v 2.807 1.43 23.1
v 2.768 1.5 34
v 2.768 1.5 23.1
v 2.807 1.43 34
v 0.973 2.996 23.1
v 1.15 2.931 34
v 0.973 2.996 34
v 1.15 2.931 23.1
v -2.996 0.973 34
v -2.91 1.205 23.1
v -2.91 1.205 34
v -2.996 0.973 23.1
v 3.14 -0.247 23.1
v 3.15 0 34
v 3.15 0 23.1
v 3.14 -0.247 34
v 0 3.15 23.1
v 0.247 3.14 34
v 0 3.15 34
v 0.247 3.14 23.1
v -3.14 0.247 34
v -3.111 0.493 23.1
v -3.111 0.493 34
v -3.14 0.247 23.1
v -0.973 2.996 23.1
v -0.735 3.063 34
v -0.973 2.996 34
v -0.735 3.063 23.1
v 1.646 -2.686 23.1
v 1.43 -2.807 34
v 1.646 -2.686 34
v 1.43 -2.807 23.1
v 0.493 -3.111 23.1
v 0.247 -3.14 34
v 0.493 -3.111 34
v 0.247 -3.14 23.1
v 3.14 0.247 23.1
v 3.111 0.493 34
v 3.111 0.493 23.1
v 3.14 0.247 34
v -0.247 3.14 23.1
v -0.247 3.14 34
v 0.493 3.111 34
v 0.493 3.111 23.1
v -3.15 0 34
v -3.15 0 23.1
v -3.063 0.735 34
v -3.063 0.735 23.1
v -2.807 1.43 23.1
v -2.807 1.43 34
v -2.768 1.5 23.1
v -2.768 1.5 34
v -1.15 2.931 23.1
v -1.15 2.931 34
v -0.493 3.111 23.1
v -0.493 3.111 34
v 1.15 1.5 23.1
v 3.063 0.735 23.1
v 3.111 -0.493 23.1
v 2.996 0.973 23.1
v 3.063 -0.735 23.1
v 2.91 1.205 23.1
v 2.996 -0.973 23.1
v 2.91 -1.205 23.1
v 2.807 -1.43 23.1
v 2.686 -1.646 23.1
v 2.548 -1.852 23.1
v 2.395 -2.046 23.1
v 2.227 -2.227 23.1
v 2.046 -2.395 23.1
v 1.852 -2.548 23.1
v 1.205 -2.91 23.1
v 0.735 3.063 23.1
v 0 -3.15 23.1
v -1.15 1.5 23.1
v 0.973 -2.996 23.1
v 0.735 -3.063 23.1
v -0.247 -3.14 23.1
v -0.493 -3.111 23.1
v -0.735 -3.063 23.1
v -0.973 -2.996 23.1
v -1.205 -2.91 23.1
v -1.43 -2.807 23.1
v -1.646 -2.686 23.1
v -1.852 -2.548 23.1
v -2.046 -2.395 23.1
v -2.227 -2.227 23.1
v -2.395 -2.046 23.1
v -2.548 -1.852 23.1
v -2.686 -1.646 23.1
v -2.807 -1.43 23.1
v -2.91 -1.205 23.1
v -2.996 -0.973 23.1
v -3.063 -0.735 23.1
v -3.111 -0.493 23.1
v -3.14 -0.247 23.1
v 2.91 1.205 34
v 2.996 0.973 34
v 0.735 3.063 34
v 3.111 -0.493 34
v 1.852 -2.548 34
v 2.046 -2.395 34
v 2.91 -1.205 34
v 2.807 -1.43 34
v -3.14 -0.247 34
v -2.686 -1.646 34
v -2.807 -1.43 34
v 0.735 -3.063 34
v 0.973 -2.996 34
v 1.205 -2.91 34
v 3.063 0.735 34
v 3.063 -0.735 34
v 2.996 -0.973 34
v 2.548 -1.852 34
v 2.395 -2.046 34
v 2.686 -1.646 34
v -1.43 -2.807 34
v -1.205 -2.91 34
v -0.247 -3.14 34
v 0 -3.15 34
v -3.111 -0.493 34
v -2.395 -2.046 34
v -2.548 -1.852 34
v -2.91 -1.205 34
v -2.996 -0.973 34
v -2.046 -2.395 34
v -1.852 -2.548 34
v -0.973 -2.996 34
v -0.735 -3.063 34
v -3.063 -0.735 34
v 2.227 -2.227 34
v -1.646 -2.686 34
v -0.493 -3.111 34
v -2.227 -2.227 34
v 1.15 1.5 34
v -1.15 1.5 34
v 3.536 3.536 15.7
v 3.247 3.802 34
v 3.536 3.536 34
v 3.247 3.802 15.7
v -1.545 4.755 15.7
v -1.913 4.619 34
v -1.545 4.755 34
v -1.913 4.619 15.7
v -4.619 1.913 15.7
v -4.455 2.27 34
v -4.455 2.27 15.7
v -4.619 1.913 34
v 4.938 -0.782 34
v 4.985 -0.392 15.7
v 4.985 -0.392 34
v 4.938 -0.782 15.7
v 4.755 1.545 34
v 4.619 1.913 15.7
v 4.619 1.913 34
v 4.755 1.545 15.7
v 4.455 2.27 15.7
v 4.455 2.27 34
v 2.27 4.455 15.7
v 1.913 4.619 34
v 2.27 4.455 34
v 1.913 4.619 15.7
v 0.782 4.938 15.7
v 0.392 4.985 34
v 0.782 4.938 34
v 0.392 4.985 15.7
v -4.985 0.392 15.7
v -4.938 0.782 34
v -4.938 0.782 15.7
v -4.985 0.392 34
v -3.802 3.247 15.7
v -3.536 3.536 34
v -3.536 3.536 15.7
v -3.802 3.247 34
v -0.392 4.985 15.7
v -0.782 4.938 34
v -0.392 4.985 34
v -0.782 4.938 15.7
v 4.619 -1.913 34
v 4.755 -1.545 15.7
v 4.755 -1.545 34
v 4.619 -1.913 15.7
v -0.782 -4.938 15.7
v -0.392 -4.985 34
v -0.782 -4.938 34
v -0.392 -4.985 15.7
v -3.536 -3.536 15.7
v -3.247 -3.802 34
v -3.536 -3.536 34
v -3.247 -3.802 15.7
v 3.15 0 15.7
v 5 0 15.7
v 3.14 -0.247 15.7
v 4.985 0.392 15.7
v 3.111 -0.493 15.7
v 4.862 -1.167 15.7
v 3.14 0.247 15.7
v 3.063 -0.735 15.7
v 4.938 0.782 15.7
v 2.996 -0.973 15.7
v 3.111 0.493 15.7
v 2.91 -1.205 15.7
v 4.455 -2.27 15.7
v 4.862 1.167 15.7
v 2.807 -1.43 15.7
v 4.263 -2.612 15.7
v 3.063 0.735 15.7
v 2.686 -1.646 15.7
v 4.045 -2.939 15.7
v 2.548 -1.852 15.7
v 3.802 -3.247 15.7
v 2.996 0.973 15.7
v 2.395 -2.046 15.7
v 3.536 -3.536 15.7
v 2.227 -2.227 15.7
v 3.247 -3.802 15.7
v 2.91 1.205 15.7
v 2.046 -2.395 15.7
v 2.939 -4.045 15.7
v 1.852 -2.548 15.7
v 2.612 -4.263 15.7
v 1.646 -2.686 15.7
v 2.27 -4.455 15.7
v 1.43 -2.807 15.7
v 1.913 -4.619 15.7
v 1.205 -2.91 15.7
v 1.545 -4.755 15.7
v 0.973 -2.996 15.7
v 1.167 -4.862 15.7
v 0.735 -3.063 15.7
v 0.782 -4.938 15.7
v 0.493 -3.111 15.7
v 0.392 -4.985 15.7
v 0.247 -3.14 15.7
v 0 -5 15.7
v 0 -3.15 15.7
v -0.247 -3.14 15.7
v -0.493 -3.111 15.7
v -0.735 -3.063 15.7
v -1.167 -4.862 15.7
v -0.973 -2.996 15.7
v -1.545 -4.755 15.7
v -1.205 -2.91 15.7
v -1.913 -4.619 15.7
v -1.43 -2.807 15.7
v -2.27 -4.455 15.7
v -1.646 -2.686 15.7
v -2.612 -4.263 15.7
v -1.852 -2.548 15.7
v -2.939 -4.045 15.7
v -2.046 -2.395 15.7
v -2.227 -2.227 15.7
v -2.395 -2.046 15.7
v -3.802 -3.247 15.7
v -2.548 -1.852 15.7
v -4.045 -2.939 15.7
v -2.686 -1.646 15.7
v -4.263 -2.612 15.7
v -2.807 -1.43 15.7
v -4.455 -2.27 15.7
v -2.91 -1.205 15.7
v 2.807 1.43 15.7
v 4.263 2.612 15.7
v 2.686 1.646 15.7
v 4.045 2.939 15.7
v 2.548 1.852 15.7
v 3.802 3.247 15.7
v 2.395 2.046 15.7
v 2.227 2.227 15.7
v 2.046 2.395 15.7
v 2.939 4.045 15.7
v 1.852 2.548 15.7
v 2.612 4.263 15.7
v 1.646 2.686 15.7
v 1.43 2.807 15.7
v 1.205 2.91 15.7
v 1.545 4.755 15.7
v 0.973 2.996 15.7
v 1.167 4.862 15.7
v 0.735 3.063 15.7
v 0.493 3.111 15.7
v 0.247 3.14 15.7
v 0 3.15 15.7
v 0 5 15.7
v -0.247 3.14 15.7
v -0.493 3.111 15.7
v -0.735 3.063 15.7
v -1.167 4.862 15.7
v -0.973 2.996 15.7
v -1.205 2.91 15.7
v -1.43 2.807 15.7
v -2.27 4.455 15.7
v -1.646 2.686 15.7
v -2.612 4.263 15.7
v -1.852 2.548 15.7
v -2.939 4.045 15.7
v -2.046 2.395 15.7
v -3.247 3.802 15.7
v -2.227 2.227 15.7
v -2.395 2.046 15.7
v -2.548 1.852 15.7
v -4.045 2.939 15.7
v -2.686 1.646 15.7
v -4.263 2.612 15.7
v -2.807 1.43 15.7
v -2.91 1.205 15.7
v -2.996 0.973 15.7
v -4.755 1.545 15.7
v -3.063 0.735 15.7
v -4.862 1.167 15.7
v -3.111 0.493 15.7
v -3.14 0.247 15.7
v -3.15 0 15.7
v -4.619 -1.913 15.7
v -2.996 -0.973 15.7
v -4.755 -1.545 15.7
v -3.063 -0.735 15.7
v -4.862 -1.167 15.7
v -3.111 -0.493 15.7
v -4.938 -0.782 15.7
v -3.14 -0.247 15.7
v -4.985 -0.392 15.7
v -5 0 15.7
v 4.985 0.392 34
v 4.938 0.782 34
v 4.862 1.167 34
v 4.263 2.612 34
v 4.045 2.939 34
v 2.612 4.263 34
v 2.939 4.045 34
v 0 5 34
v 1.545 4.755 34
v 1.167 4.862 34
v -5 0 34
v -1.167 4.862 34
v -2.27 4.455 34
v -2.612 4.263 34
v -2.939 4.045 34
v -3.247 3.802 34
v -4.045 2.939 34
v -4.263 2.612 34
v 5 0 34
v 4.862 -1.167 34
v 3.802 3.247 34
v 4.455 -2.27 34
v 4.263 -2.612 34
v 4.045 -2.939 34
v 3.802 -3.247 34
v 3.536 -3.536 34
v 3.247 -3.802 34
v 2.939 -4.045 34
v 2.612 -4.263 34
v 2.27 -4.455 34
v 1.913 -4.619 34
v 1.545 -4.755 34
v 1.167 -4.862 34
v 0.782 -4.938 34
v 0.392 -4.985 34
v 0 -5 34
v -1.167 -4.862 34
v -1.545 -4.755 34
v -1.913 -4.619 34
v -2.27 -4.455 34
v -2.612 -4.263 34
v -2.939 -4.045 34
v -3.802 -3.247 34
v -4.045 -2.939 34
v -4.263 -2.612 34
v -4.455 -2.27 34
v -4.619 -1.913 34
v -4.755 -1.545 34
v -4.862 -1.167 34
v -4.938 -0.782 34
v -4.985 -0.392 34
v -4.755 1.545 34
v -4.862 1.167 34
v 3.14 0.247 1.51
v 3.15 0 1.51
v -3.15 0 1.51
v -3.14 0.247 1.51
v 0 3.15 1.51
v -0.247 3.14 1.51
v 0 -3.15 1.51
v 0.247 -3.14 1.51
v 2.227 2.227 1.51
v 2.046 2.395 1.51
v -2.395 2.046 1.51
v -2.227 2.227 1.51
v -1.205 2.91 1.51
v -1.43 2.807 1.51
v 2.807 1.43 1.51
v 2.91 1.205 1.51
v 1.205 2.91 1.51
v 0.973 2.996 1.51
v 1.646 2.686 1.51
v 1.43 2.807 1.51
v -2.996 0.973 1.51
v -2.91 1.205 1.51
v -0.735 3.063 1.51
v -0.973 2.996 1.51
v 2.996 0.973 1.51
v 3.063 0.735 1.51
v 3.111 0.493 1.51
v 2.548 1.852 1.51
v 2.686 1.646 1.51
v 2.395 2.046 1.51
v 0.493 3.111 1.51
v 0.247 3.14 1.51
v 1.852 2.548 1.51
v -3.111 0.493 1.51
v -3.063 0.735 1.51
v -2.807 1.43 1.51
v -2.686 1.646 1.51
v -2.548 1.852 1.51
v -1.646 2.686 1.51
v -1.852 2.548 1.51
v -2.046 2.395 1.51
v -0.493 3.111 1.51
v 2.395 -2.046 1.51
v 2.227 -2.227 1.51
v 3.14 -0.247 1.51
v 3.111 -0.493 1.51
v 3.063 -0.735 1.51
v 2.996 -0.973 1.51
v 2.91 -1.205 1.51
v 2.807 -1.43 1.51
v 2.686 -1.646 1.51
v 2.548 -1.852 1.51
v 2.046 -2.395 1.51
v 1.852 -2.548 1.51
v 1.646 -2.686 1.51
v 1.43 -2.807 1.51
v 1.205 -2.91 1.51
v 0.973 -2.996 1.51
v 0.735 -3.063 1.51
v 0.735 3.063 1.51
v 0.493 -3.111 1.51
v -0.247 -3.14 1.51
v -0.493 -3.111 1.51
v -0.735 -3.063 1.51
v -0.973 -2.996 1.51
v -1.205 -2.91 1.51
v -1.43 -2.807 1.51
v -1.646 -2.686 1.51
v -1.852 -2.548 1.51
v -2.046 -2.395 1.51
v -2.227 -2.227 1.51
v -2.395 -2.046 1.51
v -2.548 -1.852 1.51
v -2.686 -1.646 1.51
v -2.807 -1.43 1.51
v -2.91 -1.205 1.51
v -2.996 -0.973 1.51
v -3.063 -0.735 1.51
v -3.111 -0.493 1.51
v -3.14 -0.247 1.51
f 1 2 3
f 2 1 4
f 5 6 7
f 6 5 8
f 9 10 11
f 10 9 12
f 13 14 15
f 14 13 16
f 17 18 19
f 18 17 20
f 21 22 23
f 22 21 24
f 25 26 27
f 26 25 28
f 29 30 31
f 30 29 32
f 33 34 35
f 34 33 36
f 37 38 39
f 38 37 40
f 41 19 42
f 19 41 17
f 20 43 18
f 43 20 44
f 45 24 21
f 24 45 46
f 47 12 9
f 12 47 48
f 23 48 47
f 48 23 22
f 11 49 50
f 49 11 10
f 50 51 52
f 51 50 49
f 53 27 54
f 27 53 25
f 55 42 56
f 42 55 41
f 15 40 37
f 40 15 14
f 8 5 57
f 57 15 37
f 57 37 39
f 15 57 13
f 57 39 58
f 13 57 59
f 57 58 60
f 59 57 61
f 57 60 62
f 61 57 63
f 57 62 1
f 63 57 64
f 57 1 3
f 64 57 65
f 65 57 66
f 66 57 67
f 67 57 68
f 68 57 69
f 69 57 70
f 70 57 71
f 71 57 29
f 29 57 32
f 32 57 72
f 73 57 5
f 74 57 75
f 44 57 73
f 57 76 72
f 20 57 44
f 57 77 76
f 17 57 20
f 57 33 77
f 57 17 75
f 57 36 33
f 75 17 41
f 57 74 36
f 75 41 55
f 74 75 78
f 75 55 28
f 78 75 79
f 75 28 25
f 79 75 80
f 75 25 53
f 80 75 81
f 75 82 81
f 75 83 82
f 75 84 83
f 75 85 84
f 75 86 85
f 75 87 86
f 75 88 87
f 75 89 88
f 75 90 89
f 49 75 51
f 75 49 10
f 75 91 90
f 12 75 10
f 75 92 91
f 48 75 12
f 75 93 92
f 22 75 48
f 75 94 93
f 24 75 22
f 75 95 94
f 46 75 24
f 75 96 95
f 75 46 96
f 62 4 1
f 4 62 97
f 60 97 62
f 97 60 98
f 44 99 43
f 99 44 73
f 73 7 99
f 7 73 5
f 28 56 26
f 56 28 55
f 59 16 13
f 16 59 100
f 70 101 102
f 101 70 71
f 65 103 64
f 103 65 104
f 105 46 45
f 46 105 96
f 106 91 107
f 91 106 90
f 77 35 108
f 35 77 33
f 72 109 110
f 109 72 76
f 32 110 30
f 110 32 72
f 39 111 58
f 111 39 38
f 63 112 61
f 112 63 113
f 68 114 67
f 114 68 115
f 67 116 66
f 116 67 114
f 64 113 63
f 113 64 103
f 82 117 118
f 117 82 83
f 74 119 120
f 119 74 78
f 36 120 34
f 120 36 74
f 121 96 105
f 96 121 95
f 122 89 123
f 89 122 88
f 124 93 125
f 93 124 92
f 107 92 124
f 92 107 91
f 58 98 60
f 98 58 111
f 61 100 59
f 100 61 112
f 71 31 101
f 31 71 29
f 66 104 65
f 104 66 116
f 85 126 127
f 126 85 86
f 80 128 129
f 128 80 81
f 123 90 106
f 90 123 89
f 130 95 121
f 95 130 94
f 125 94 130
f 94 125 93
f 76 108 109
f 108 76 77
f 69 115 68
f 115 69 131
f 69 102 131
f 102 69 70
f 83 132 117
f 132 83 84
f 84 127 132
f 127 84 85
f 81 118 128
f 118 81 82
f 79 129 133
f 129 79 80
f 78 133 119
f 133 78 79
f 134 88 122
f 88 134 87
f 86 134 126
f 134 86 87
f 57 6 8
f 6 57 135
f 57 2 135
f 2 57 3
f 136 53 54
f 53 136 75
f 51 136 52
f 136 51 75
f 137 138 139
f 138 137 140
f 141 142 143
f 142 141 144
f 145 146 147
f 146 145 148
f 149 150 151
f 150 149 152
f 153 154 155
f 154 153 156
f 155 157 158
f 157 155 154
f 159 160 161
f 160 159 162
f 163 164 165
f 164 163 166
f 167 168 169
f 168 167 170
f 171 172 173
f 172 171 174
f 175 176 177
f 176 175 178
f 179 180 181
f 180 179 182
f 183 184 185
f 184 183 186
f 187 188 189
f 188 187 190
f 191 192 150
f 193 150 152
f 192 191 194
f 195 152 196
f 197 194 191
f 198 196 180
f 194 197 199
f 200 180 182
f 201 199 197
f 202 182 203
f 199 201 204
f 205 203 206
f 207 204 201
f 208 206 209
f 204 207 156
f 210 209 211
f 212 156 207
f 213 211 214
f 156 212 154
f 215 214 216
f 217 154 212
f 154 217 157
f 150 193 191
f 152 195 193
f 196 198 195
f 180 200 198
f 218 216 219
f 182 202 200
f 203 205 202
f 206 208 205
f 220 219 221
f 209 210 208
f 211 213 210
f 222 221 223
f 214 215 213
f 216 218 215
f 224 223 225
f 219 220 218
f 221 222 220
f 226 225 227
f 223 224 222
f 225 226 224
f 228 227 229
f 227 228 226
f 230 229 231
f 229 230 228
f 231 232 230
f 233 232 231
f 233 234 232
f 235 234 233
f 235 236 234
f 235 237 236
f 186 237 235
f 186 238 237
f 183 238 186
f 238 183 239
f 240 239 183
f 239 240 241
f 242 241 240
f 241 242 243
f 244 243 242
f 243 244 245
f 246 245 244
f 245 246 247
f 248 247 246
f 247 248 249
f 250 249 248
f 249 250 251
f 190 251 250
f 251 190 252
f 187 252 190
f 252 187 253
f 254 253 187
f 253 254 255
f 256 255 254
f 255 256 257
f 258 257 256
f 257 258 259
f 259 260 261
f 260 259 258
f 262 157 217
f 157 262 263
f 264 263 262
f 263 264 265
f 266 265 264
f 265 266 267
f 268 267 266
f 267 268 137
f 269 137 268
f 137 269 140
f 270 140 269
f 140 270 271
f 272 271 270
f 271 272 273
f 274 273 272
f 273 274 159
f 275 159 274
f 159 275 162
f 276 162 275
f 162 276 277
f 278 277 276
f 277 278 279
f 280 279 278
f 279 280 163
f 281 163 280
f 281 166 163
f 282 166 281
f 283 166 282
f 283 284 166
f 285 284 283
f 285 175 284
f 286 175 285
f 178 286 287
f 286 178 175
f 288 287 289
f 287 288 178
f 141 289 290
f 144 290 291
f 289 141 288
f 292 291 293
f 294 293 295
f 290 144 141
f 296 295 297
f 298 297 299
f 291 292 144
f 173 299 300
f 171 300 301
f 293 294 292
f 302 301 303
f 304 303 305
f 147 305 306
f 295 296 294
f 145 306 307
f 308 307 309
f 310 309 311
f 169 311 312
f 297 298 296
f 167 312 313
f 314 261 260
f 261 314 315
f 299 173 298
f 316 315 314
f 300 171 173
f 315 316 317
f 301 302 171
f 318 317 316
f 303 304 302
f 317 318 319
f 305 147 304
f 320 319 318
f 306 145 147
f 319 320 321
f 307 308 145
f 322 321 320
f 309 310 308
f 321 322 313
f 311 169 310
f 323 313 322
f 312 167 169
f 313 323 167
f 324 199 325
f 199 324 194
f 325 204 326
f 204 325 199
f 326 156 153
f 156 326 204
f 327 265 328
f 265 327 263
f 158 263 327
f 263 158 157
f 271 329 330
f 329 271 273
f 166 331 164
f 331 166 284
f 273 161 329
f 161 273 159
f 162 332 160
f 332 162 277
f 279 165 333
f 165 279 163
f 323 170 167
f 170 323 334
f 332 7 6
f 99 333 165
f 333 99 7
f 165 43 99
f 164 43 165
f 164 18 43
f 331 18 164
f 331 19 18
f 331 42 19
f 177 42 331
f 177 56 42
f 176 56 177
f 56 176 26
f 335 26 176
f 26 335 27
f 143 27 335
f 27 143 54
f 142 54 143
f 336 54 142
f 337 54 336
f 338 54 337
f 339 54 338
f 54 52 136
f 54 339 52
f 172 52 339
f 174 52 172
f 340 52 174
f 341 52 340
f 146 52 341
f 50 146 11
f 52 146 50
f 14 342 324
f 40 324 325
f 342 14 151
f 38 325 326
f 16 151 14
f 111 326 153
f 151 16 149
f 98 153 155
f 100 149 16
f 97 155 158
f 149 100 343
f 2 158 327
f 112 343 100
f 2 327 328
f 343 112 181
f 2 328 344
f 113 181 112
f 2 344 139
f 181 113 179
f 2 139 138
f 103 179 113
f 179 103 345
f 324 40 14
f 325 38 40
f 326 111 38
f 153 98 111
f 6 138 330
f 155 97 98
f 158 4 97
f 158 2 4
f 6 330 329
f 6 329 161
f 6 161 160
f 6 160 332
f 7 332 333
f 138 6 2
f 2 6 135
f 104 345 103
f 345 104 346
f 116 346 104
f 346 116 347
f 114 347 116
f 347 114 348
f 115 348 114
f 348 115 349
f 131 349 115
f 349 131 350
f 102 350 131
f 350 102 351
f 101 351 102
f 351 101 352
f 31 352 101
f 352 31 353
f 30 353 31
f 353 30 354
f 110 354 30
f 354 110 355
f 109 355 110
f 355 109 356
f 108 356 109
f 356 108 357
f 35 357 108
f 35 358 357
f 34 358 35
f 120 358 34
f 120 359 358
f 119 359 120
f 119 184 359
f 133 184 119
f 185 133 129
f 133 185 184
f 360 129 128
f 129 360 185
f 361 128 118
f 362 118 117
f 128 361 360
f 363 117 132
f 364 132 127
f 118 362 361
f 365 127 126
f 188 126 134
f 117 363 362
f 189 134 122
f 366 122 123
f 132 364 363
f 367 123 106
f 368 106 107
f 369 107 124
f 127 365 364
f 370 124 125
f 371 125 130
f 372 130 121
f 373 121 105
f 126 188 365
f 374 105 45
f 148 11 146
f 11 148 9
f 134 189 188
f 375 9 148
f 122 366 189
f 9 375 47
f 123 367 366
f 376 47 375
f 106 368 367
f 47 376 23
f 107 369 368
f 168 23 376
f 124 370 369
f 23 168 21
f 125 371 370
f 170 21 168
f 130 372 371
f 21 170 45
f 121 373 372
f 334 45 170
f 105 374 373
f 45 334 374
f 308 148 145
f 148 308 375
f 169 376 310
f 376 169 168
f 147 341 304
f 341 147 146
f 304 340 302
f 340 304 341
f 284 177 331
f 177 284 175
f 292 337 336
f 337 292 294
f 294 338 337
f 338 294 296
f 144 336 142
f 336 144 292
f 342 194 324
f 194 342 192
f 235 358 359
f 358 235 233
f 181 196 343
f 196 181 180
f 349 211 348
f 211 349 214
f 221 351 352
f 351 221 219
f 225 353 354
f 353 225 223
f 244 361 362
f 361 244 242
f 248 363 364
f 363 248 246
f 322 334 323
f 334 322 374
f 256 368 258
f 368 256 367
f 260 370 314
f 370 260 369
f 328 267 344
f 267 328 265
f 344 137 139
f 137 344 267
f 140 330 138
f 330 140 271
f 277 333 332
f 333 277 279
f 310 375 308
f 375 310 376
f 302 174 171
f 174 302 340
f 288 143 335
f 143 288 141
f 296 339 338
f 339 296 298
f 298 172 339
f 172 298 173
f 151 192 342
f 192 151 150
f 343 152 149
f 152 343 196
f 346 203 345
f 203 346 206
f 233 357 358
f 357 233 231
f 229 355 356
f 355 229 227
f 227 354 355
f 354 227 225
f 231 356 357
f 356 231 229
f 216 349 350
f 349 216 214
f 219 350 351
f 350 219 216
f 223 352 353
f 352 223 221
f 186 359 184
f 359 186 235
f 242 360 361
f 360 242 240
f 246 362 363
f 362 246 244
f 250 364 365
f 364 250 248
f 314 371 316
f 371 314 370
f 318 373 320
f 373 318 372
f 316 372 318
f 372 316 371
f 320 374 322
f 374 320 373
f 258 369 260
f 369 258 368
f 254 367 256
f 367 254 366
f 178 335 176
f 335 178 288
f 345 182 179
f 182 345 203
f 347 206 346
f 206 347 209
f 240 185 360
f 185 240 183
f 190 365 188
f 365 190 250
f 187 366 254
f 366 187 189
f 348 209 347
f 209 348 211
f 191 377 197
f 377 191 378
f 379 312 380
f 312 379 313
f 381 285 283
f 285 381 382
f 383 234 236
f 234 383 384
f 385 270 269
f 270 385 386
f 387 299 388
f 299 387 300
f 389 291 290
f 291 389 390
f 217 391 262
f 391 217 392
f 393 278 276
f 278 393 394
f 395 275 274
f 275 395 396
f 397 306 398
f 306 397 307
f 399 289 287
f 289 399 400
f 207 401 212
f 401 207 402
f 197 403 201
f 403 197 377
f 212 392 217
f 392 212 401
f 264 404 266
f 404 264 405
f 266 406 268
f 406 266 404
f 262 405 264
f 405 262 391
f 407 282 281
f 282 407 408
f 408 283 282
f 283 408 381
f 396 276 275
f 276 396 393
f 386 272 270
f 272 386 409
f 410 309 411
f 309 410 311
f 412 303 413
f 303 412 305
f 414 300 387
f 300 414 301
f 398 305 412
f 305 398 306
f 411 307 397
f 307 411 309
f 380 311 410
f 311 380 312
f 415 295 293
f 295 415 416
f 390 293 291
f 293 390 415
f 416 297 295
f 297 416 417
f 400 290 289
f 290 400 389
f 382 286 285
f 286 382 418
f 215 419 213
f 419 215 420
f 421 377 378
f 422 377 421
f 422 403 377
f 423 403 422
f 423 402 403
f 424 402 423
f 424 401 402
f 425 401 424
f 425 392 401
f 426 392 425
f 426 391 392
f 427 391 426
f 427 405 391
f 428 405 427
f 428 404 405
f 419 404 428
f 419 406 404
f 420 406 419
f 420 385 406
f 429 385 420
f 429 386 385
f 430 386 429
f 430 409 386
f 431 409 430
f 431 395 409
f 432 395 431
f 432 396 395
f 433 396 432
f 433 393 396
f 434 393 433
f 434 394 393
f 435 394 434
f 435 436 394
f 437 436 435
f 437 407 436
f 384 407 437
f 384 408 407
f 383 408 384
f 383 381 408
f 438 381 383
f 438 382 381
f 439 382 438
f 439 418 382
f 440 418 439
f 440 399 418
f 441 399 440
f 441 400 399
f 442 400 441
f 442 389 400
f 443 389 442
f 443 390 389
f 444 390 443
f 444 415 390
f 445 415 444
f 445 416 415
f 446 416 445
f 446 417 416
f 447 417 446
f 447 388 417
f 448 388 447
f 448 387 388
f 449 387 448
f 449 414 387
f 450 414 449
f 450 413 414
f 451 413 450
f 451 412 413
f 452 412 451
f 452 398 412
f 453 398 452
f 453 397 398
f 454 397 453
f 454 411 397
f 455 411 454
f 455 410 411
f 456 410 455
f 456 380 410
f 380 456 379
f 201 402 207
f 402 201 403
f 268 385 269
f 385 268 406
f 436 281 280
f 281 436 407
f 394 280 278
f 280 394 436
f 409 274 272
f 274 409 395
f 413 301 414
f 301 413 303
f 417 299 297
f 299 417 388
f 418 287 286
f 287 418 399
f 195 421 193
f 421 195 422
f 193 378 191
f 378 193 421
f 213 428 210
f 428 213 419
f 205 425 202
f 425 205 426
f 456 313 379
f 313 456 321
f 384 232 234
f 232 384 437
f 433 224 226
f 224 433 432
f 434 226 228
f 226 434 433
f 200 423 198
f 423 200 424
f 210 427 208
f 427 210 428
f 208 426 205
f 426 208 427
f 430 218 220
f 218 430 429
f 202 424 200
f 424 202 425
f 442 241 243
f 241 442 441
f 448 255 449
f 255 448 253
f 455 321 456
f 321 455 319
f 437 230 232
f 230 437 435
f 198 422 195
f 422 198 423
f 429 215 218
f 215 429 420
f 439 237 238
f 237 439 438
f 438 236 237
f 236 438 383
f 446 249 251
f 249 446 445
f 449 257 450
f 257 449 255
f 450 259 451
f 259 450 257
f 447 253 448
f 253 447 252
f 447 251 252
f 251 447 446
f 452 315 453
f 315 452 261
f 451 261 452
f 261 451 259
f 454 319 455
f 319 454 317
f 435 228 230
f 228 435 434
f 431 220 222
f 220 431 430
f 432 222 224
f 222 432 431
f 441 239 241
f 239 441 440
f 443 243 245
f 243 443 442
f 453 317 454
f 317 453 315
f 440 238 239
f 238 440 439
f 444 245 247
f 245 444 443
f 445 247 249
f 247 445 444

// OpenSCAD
$fn = 80;
translate([0,0,1.51])
cylinder(h=14.2,d=6.3);
difference() {
// cylinder outer dimension
translate([0,0,15.7])
cylinder(h=18.3, d=10);

// center cutout
translate([0,0,23.1])
difference() {
cylinder(h=11, d=6.3);

translate([1.15,1.5,0])
    cube([4,4,11.1]);
    
translate([-5.15,1.5,0])
    cube([4,4,11.1]);
}

}
